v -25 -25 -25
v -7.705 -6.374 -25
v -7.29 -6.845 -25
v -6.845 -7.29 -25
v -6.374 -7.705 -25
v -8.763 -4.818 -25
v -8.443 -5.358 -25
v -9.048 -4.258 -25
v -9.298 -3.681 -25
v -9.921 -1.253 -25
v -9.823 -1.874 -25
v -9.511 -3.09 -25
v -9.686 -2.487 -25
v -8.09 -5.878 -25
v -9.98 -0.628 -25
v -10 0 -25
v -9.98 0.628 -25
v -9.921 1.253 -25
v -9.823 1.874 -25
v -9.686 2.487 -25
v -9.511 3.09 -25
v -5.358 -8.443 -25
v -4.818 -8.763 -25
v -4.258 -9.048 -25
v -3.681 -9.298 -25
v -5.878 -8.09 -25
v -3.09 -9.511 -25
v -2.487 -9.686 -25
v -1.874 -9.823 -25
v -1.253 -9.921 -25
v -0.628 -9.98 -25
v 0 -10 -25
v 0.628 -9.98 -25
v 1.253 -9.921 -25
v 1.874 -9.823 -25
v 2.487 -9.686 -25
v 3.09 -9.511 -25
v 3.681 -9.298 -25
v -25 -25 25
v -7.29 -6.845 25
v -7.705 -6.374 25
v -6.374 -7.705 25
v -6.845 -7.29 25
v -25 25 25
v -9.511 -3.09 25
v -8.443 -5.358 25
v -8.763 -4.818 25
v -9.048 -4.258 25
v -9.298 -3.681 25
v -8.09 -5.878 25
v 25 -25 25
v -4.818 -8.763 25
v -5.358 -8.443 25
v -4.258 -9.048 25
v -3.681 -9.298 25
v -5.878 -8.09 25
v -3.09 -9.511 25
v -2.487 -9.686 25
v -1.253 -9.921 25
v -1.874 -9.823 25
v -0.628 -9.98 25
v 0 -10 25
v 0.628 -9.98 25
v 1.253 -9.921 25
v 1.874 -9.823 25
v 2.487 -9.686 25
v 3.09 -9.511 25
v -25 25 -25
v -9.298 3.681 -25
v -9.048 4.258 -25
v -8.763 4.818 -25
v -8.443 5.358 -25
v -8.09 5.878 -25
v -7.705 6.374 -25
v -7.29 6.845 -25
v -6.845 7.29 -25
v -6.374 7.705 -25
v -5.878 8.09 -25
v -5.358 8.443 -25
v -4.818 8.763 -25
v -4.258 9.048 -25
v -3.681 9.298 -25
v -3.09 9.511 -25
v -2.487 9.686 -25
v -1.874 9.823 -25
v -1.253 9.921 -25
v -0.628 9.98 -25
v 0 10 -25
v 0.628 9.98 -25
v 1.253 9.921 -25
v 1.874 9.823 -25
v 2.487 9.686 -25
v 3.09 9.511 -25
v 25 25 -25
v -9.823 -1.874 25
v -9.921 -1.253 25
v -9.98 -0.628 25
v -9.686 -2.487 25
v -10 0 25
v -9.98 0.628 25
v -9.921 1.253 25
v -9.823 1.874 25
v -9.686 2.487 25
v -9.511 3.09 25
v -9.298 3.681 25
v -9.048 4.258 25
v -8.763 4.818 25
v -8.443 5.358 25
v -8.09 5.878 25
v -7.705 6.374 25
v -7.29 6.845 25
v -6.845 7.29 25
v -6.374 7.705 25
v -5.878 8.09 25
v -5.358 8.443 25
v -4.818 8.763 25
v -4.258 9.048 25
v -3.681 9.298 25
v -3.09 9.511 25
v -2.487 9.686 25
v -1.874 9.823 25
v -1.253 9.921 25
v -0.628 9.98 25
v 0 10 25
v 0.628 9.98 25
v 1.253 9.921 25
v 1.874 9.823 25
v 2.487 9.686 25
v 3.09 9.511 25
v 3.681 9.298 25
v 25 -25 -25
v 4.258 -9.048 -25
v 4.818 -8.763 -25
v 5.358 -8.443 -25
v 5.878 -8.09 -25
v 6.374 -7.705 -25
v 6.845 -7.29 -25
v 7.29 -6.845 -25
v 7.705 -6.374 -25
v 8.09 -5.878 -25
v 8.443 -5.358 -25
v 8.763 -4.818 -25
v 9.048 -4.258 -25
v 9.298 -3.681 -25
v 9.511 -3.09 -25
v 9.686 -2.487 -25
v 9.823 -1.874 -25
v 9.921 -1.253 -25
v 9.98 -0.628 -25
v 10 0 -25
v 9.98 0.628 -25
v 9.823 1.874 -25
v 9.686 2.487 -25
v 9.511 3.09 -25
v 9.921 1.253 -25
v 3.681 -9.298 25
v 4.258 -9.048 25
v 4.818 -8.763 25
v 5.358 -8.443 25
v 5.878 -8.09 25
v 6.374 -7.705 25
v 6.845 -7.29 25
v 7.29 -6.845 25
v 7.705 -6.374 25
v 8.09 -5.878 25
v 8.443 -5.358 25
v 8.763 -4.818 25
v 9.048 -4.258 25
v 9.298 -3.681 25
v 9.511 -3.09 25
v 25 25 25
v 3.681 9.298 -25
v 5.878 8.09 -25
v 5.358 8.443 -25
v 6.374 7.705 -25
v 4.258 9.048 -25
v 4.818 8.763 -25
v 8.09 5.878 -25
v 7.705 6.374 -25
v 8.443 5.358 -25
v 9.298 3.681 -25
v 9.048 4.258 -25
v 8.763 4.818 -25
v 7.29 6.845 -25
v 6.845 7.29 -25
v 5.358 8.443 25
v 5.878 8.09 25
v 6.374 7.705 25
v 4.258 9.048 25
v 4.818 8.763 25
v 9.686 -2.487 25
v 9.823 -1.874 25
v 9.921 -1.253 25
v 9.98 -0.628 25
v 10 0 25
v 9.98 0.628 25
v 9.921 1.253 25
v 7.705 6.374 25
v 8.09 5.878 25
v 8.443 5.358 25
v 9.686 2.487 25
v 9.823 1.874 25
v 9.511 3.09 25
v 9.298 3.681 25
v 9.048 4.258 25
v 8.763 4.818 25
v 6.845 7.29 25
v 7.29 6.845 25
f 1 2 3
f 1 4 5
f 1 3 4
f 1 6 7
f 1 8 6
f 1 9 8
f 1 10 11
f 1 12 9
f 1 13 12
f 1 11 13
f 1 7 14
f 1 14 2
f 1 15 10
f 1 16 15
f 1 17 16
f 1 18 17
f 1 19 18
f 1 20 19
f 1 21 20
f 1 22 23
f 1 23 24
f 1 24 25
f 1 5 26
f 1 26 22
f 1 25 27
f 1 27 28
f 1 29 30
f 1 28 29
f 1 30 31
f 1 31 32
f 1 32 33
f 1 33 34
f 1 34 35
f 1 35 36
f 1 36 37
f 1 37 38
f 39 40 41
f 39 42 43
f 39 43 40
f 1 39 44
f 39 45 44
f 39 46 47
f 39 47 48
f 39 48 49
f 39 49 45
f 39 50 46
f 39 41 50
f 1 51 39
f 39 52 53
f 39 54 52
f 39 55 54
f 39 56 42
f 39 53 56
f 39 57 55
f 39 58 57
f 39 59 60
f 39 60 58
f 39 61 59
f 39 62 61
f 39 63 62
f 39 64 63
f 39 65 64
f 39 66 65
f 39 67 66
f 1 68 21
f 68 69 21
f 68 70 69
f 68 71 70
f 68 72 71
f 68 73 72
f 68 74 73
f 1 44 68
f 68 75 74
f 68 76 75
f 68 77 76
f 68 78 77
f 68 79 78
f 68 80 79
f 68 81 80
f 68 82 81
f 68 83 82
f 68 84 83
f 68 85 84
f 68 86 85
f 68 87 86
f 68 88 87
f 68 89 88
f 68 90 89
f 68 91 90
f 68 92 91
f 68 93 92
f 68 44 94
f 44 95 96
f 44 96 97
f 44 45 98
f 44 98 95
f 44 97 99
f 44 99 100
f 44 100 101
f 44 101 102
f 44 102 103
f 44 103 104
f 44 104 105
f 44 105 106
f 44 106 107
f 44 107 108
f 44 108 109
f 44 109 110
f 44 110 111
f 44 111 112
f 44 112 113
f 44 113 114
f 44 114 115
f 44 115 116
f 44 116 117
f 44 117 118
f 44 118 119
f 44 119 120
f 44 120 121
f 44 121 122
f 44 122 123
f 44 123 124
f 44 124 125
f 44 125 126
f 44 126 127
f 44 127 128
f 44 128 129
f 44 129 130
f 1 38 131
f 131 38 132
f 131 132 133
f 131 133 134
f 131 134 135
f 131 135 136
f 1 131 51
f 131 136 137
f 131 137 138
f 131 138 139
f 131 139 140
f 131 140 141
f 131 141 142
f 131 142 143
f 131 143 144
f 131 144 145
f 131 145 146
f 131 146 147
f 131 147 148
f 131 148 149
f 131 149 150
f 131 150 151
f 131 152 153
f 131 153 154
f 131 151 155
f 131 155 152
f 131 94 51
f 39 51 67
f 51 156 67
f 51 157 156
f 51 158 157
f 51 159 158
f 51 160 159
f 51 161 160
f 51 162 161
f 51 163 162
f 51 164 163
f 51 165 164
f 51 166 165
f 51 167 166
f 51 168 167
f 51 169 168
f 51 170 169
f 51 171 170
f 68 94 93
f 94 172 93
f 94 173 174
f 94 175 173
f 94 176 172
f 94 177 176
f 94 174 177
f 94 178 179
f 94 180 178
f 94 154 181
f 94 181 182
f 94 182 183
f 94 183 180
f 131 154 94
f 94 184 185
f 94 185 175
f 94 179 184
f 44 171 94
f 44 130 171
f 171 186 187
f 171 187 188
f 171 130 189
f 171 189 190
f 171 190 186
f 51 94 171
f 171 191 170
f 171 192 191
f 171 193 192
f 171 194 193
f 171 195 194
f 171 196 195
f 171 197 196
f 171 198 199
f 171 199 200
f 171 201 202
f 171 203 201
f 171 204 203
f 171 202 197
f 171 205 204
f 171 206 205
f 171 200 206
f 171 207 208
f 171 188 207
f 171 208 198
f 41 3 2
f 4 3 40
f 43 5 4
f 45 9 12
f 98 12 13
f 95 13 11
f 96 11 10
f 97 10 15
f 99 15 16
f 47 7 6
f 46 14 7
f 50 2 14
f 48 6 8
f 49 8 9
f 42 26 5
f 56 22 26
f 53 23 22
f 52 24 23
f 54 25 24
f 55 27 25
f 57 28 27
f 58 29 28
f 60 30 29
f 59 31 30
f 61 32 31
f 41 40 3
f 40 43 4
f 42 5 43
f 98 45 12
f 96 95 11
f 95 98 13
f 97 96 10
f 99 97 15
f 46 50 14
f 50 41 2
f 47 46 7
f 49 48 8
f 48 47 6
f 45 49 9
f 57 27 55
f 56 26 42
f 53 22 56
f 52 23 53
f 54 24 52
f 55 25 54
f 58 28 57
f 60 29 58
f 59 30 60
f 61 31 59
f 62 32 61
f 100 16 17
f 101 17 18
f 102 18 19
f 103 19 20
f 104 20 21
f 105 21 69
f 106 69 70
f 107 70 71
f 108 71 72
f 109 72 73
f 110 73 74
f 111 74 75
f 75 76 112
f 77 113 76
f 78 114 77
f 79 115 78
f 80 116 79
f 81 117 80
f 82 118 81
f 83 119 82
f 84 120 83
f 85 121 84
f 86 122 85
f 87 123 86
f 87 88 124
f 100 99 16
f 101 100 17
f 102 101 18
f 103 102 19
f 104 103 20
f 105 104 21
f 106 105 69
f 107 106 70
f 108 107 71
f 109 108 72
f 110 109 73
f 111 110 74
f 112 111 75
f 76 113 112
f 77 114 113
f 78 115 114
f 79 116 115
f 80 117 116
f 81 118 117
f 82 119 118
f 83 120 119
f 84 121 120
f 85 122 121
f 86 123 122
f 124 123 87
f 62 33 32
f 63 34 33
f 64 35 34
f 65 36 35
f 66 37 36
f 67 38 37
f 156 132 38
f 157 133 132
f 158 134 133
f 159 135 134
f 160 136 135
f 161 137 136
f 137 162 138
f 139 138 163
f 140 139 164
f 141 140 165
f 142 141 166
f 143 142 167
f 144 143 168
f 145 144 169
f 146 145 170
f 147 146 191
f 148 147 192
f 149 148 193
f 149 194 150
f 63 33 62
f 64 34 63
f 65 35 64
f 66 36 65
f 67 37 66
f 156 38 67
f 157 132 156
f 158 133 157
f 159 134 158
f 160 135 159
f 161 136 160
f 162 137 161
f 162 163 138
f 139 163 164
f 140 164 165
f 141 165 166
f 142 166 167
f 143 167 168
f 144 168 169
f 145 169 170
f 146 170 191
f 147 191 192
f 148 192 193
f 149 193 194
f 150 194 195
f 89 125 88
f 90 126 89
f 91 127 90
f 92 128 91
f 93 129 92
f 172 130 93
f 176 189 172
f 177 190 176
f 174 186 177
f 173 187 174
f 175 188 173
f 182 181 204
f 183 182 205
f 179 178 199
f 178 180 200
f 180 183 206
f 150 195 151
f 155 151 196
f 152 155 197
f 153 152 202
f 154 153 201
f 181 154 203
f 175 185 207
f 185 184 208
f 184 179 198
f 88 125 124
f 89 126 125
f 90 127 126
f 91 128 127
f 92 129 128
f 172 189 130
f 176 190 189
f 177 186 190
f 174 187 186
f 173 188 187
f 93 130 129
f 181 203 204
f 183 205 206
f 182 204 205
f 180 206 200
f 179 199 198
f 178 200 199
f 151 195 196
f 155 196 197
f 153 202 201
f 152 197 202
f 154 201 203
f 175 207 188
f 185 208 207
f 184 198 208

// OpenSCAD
$fn = 100;

difference() {
    // 50mm角の立方体
    cube(50, center = true);

    // 直径20mmの貫通穴（z軸方向）
    // 上下の面をきれいに貫通させるため、高さを少し大きく（60mm）設定しています
    cylinder(h = 60, d = 20, center = true);
}
